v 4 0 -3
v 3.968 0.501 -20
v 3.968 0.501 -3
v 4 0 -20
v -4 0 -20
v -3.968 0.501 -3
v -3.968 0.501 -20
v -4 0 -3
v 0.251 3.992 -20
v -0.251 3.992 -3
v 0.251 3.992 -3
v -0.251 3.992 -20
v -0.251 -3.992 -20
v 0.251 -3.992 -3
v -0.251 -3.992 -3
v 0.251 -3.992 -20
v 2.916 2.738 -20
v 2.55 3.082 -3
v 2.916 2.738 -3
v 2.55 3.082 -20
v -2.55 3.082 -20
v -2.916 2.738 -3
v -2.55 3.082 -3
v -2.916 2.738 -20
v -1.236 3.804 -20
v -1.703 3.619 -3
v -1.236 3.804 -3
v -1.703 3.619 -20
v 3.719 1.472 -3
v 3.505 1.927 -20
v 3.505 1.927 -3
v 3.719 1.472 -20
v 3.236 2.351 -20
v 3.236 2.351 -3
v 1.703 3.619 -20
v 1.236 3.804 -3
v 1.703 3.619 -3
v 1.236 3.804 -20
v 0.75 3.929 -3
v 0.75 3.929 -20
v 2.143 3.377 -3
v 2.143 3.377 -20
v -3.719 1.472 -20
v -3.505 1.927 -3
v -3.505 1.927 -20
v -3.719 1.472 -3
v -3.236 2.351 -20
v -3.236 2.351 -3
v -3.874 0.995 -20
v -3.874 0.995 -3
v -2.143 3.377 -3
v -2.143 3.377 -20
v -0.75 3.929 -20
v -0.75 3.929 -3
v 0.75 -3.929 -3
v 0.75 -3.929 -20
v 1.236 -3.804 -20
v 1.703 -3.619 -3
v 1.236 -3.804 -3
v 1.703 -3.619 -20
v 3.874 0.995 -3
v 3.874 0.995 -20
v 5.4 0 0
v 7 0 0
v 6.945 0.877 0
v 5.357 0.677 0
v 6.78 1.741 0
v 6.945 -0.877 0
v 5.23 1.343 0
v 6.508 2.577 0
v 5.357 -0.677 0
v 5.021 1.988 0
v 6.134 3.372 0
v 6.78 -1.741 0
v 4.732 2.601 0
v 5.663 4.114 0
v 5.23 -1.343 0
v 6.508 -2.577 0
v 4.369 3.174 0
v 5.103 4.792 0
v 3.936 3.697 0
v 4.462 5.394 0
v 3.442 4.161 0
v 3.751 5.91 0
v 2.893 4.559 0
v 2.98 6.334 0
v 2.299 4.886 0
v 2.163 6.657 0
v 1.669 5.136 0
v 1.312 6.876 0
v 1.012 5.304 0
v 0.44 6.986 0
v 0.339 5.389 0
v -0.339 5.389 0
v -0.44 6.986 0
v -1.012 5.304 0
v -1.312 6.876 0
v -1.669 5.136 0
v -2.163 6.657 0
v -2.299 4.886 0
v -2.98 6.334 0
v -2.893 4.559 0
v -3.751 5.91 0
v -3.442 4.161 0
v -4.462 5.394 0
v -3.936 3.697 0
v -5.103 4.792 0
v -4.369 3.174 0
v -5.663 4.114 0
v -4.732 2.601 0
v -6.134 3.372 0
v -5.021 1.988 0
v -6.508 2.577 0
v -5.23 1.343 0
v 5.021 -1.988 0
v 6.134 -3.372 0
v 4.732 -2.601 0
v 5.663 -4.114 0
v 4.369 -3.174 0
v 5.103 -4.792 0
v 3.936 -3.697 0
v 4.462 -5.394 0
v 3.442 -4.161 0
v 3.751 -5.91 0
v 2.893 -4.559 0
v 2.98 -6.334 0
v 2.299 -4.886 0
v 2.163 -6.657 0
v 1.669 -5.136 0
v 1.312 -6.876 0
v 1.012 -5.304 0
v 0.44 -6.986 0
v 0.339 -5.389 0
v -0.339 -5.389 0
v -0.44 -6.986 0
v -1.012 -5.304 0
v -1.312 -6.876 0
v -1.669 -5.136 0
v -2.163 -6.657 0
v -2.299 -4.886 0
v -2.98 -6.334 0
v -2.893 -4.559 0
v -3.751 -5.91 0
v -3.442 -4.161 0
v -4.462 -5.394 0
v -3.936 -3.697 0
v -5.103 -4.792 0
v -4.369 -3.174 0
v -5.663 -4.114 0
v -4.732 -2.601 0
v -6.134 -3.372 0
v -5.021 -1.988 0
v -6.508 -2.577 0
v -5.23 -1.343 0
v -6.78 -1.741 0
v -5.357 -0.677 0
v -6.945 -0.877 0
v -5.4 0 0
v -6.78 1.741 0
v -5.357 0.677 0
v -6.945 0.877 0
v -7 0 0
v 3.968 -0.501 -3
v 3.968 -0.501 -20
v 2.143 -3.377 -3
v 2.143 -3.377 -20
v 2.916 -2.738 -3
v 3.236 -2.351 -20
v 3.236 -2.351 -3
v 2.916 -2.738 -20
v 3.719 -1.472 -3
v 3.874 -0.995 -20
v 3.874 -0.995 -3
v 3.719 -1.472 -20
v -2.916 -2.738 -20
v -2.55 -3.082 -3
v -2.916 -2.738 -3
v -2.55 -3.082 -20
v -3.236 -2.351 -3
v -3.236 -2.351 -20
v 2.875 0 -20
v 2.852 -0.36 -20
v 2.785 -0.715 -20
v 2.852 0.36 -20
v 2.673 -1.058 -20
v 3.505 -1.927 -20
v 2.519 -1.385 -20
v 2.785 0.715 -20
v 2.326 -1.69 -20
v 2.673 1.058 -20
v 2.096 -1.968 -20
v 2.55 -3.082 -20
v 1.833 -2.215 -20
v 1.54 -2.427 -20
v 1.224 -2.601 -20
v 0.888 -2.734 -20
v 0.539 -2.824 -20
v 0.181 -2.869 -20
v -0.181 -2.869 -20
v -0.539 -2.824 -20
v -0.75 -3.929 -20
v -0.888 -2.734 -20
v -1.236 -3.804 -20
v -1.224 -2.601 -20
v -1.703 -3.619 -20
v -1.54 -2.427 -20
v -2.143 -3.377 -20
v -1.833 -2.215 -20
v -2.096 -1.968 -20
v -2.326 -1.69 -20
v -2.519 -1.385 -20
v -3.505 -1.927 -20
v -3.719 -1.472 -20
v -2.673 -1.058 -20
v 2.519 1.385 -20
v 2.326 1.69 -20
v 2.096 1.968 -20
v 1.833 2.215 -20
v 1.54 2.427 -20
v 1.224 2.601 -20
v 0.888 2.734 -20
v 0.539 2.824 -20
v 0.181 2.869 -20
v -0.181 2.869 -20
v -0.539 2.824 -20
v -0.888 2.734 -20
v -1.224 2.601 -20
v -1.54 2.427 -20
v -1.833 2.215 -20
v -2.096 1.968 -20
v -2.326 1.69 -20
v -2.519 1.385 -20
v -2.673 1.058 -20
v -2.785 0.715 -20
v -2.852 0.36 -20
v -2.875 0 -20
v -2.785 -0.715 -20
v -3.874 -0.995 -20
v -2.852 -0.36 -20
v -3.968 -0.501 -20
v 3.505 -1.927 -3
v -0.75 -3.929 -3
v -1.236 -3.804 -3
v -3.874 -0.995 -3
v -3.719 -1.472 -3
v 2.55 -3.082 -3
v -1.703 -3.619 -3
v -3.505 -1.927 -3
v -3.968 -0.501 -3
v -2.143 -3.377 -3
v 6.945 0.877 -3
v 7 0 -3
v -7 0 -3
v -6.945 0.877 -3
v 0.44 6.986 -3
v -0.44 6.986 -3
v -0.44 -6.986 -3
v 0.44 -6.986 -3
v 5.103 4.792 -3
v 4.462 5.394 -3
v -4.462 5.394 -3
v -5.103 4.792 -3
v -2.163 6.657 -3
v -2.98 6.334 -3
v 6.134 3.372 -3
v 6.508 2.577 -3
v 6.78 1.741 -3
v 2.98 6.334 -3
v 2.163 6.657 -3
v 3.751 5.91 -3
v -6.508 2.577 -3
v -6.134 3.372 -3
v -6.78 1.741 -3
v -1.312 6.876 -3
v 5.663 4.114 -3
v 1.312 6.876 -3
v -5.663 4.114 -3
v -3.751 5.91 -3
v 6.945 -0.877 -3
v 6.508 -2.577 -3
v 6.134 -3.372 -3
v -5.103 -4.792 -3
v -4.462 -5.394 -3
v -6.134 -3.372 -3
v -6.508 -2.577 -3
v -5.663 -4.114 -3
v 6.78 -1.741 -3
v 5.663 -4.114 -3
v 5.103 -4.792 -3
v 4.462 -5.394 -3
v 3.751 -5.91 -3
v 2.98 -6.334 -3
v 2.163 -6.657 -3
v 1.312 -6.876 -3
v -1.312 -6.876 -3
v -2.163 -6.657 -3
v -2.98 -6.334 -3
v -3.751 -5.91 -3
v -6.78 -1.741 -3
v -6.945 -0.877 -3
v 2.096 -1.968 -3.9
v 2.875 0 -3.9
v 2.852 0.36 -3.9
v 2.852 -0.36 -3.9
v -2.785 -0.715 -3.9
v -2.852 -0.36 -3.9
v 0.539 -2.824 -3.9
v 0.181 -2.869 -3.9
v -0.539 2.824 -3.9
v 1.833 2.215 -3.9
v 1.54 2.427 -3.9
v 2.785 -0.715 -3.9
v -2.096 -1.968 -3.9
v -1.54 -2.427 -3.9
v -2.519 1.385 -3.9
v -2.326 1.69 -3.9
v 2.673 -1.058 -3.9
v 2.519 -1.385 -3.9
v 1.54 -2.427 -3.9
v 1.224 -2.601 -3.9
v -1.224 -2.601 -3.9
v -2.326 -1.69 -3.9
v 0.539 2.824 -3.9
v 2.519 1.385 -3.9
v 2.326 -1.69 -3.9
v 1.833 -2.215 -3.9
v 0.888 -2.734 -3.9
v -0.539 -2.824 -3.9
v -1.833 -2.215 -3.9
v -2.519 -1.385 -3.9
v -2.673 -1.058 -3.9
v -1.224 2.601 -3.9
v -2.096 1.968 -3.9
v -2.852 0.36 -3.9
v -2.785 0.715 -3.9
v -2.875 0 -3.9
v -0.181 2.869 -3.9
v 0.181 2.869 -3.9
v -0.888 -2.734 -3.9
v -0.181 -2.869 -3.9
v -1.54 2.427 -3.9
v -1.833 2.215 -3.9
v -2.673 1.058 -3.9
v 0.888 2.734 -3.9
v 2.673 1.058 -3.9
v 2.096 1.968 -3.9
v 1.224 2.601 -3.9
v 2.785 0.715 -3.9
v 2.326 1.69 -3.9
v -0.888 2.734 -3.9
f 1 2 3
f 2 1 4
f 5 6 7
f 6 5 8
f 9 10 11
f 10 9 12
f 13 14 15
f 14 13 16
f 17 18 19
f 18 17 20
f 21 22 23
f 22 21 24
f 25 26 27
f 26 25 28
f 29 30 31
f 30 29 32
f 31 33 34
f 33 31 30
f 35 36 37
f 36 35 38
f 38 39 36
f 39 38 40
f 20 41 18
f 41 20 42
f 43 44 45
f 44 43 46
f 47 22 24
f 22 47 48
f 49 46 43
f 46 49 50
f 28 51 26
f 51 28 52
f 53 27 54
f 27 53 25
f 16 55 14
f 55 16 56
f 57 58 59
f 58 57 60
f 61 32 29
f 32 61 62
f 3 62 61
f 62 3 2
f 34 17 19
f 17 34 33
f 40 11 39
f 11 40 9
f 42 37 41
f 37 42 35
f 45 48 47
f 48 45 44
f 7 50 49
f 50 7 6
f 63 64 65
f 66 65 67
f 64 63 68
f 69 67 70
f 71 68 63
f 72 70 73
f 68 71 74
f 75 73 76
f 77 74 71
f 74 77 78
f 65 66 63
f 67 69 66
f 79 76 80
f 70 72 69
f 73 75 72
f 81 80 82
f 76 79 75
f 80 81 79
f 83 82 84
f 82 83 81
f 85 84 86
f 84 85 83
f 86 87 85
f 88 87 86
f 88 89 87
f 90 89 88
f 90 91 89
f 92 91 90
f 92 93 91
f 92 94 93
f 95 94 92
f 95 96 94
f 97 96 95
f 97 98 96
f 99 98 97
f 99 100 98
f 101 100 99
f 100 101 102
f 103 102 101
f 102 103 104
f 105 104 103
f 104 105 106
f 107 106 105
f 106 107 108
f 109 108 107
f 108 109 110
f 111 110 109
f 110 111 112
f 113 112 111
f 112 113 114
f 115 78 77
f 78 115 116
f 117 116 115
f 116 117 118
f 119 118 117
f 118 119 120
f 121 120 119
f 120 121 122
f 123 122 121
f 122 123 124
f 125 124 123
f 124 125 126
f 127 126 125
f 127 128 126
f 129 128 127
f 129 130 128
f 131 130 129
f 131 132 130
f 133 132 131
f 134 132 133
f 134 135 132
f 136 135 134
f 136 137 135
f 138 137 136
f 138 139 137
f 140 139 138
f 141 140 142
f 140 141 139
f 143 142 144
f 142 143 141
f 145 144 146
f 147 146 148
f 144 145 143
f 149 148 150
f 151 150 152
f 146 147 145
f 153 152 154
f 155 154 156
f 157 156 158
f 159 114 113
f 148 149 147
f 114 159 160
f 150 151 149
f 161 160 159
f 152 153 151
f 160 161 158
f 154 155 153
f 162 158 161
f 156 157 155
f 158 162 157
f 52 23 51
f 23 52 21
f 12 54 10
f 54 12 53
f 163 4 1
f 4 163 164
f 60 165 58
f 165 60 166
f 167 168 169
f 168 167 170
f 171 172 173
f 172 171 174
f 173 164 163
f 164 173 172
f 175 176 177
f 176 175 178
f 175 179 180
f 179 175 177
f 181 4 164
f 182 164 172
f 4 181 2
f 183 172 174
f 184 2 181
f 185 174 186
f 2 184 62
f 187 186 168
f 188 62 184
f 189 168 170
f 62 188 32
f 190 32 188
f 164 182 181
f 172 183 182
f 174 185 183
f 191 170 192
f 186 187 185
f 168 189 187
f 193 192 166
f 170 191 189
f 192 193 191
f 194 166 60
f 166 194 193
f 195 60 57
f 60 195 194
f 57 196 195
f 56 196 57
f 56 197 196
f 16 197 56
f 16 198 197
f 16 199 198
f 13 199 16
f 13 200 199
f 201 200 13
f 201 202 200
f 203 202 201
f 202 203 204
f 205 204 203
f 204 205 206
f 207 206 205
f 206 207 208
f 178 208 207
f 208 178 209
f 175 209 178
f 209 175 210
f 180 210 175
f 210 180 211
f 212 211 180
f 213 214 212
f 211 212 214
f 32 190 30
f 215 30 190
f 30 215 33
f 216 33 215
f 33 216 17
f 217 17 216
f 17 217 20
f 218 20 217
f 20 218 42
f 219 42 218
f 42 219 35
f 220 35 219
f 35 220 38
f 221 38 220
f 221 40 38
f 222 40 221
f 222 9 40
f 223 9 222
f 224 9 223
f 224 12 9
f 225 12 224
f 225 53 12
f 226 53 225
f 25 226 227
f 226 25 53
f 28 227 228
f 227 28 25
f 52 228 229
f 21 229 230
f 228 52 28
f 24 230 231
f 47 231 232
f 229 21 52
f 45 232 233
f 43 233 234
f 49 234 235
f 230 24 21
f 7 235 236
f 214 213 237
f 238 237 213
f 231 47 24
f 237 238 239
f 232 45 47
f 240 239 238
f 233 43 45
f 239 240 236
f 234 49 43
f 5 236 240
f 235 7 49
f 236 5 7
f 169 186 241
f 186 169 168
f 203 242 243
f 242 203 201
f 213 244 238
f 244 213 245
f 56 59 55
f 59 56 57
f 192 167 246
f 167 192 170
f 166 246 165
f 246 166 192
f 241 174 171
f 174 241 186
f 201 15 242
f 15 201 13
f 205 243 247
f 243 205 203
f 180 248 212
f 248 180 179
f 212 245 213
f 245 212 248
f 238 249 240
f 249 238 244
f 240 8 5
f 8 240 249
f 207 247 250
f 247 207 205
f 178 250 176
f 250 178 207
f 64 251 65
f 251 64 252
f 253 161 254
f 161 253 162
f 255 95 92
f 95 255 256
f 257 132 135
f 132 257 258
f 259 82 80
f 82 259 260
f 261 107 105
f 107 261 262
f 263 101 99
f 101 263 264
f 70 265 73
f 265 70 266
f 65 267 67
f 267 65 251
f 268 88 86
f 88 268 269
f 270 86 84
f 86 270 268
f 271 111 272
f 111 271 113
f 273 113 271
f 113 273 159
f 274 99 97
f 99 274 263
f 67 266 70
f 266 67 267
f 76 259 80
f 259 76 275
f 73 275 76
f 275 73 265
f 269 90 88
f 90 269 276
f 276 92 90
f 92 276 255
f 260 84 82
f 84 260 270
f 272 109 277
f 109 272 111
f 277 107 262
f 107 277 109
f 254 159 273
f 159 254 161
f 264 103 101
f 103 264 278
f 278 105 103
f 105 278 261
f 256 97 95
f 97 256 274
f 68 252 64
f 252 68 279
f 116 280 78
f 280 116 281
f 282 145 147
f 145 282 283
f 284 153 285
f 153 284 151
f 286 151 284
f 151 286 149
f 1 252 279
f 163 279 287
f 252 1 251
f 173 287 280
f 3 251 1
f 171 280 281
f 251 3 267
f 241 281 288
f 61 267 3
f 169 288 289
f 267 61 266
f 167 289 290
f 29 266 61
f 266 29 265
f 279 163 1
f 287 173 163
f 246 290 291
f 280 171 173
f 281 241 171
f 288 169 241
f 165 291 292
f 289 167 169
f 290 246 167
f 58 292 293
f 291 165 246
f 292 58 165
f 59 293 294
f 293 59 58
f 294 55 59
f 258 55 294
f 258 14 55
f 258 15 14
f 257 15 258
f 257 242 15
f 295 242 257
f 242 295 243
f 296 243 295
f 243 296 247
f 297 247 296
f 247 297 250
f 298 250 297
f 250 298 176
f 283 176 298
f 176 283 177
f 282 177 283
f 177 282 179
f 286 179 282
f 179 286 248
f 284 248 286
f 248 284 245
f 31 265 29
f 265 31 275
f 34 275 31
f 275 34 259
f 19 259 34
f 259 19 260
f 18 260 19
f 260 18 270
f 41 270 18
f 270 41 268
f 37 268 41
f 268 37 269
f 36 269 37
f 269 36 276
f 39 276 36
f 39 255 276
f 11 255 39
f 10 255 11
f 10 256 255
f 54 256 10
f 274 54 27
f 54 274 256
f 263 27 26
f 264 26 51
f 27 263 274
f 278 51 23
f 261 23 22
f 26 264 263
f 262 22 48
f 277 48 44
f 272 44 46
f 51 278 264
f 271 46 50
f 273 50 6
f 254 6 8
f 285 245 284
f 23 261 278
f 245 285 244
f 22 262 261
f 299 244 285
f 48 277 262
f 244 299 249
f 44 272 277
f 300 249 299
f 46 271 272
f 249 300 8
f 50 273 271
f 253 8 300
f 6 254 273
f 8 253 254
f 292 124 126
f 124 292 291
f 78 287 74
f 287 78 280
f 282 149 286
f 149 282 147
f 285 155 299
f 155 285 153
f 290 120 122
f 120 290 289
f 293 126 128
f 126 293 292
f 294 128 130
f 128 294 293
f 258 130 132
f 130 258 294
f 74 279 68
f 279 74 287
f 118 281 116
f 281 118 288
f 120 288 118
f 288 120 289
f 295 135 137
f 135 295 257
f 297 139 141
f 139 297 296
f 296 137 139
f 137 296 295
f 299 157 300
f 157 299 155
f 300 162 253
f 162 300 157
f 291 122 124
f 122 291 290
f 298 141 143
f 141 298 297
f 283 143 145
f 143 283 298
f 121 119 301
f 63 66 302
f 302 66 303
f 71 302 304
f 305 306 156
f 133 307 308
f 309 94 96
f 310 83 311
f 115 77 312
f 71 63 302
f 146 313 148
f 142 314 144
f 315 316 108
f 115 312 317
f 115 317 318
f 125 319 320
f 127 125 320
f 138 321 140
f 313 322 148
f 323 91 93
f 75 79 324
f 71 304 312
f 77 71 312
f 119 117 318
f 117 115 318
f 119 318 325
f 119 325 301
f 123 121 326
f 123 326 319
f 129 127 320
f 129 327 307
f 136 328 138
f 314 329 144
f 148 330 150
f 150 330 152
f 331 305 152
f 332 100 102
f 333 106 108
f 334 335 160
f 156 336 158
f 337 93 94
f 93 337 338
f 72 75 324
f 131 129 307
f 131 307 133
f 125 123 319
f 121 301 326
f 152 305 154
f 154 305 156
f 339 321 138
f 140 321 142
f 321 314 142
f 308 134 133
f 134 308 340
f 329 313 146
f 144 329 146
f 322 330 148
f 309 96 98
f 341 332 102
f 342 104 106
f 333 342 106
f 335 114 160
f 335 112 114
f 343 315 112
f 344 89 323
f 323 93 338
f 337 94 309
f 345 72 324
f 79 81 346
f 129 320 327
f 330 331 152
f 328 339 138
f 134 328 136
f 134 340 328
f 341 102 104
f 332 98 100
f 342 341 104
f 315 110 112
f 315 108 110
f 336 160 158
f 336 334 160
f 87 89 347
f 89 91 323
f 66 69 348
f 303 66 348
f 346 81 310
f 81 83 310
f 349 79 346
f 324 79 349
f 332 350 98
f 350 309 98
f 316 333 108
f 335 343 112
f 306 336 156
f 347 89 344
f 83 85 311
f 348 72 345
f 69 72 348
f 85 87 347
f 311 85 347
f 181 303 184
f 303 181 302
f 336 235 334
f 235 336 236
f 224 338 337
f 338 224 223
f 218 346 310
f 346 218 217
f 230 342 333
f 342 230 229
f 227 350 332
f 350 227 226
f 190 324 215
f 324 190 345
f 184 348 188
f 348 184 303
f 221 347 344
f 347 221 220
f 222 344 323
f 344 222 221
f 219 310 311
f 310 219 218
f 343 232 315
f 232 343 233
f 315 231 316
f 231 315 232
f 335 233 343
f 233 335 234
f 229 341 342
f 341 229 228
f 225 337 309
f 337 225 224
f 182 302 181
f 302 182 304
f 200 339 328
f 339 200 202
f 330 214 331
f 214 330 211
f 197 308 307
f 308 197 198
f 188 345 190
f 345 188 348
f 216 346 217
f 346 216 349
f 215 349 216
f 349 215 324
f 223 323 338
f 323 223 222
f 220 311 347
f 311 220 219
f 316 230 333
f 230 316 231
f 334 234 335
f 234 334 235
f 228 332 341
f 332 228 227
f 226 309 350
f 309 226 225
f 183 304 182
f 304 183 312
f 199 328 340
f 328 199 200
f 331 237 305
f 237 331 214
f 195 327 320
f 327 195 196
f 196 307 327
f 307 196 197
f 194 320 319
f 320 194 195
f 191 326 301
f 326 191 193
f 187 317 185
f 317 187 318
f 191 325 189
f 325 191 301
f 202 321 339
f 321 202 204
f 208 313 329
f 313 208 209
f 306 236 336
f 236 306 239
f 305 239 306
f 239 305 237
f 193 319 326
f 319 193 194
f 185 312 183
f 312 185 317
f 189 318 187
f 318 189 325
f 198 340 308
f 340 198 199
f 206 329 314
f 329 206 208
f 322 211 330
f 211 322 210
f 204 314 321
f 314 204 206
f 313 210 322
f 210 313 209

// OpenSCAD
$fn = 50;


difference() {
	union() {
		translate(v = [0, 0, -20.0000000000]) {
			cylinder(h = 20, r = 4.0000000000);
		}
		translate(v = [0, 0, -3.0000000000]) {
			cylinder(h = 3, r = 7.0000000000);
		}
	}
	union() {
		translate(v = [0, 0, 0]) {
			rotate(a = [0, 0, 0]) {
				difference() {
					union() {
						#translate(v = [0, 0, -20.0000000000]) {
							cylinder(h = 20, r = 2.6000000000);
						}
						#translate(v = [0, 0, -3.9000000000]) {
							cylinder(h = 3.9000000000, r1 = 2.8750000000, r2 = 5.4000000000);
						}
						#translate(v = [0, 0, -20.0000000000]) {
							cylinder(h = 20, r = 2.8750000000);
						}
						#translate(v = [0, 0, -20.0000000000]) {
							cylinder(h = 20, r = 2.6000000000);
						}
					}
					union();
				}
			}
		}
	}
}
